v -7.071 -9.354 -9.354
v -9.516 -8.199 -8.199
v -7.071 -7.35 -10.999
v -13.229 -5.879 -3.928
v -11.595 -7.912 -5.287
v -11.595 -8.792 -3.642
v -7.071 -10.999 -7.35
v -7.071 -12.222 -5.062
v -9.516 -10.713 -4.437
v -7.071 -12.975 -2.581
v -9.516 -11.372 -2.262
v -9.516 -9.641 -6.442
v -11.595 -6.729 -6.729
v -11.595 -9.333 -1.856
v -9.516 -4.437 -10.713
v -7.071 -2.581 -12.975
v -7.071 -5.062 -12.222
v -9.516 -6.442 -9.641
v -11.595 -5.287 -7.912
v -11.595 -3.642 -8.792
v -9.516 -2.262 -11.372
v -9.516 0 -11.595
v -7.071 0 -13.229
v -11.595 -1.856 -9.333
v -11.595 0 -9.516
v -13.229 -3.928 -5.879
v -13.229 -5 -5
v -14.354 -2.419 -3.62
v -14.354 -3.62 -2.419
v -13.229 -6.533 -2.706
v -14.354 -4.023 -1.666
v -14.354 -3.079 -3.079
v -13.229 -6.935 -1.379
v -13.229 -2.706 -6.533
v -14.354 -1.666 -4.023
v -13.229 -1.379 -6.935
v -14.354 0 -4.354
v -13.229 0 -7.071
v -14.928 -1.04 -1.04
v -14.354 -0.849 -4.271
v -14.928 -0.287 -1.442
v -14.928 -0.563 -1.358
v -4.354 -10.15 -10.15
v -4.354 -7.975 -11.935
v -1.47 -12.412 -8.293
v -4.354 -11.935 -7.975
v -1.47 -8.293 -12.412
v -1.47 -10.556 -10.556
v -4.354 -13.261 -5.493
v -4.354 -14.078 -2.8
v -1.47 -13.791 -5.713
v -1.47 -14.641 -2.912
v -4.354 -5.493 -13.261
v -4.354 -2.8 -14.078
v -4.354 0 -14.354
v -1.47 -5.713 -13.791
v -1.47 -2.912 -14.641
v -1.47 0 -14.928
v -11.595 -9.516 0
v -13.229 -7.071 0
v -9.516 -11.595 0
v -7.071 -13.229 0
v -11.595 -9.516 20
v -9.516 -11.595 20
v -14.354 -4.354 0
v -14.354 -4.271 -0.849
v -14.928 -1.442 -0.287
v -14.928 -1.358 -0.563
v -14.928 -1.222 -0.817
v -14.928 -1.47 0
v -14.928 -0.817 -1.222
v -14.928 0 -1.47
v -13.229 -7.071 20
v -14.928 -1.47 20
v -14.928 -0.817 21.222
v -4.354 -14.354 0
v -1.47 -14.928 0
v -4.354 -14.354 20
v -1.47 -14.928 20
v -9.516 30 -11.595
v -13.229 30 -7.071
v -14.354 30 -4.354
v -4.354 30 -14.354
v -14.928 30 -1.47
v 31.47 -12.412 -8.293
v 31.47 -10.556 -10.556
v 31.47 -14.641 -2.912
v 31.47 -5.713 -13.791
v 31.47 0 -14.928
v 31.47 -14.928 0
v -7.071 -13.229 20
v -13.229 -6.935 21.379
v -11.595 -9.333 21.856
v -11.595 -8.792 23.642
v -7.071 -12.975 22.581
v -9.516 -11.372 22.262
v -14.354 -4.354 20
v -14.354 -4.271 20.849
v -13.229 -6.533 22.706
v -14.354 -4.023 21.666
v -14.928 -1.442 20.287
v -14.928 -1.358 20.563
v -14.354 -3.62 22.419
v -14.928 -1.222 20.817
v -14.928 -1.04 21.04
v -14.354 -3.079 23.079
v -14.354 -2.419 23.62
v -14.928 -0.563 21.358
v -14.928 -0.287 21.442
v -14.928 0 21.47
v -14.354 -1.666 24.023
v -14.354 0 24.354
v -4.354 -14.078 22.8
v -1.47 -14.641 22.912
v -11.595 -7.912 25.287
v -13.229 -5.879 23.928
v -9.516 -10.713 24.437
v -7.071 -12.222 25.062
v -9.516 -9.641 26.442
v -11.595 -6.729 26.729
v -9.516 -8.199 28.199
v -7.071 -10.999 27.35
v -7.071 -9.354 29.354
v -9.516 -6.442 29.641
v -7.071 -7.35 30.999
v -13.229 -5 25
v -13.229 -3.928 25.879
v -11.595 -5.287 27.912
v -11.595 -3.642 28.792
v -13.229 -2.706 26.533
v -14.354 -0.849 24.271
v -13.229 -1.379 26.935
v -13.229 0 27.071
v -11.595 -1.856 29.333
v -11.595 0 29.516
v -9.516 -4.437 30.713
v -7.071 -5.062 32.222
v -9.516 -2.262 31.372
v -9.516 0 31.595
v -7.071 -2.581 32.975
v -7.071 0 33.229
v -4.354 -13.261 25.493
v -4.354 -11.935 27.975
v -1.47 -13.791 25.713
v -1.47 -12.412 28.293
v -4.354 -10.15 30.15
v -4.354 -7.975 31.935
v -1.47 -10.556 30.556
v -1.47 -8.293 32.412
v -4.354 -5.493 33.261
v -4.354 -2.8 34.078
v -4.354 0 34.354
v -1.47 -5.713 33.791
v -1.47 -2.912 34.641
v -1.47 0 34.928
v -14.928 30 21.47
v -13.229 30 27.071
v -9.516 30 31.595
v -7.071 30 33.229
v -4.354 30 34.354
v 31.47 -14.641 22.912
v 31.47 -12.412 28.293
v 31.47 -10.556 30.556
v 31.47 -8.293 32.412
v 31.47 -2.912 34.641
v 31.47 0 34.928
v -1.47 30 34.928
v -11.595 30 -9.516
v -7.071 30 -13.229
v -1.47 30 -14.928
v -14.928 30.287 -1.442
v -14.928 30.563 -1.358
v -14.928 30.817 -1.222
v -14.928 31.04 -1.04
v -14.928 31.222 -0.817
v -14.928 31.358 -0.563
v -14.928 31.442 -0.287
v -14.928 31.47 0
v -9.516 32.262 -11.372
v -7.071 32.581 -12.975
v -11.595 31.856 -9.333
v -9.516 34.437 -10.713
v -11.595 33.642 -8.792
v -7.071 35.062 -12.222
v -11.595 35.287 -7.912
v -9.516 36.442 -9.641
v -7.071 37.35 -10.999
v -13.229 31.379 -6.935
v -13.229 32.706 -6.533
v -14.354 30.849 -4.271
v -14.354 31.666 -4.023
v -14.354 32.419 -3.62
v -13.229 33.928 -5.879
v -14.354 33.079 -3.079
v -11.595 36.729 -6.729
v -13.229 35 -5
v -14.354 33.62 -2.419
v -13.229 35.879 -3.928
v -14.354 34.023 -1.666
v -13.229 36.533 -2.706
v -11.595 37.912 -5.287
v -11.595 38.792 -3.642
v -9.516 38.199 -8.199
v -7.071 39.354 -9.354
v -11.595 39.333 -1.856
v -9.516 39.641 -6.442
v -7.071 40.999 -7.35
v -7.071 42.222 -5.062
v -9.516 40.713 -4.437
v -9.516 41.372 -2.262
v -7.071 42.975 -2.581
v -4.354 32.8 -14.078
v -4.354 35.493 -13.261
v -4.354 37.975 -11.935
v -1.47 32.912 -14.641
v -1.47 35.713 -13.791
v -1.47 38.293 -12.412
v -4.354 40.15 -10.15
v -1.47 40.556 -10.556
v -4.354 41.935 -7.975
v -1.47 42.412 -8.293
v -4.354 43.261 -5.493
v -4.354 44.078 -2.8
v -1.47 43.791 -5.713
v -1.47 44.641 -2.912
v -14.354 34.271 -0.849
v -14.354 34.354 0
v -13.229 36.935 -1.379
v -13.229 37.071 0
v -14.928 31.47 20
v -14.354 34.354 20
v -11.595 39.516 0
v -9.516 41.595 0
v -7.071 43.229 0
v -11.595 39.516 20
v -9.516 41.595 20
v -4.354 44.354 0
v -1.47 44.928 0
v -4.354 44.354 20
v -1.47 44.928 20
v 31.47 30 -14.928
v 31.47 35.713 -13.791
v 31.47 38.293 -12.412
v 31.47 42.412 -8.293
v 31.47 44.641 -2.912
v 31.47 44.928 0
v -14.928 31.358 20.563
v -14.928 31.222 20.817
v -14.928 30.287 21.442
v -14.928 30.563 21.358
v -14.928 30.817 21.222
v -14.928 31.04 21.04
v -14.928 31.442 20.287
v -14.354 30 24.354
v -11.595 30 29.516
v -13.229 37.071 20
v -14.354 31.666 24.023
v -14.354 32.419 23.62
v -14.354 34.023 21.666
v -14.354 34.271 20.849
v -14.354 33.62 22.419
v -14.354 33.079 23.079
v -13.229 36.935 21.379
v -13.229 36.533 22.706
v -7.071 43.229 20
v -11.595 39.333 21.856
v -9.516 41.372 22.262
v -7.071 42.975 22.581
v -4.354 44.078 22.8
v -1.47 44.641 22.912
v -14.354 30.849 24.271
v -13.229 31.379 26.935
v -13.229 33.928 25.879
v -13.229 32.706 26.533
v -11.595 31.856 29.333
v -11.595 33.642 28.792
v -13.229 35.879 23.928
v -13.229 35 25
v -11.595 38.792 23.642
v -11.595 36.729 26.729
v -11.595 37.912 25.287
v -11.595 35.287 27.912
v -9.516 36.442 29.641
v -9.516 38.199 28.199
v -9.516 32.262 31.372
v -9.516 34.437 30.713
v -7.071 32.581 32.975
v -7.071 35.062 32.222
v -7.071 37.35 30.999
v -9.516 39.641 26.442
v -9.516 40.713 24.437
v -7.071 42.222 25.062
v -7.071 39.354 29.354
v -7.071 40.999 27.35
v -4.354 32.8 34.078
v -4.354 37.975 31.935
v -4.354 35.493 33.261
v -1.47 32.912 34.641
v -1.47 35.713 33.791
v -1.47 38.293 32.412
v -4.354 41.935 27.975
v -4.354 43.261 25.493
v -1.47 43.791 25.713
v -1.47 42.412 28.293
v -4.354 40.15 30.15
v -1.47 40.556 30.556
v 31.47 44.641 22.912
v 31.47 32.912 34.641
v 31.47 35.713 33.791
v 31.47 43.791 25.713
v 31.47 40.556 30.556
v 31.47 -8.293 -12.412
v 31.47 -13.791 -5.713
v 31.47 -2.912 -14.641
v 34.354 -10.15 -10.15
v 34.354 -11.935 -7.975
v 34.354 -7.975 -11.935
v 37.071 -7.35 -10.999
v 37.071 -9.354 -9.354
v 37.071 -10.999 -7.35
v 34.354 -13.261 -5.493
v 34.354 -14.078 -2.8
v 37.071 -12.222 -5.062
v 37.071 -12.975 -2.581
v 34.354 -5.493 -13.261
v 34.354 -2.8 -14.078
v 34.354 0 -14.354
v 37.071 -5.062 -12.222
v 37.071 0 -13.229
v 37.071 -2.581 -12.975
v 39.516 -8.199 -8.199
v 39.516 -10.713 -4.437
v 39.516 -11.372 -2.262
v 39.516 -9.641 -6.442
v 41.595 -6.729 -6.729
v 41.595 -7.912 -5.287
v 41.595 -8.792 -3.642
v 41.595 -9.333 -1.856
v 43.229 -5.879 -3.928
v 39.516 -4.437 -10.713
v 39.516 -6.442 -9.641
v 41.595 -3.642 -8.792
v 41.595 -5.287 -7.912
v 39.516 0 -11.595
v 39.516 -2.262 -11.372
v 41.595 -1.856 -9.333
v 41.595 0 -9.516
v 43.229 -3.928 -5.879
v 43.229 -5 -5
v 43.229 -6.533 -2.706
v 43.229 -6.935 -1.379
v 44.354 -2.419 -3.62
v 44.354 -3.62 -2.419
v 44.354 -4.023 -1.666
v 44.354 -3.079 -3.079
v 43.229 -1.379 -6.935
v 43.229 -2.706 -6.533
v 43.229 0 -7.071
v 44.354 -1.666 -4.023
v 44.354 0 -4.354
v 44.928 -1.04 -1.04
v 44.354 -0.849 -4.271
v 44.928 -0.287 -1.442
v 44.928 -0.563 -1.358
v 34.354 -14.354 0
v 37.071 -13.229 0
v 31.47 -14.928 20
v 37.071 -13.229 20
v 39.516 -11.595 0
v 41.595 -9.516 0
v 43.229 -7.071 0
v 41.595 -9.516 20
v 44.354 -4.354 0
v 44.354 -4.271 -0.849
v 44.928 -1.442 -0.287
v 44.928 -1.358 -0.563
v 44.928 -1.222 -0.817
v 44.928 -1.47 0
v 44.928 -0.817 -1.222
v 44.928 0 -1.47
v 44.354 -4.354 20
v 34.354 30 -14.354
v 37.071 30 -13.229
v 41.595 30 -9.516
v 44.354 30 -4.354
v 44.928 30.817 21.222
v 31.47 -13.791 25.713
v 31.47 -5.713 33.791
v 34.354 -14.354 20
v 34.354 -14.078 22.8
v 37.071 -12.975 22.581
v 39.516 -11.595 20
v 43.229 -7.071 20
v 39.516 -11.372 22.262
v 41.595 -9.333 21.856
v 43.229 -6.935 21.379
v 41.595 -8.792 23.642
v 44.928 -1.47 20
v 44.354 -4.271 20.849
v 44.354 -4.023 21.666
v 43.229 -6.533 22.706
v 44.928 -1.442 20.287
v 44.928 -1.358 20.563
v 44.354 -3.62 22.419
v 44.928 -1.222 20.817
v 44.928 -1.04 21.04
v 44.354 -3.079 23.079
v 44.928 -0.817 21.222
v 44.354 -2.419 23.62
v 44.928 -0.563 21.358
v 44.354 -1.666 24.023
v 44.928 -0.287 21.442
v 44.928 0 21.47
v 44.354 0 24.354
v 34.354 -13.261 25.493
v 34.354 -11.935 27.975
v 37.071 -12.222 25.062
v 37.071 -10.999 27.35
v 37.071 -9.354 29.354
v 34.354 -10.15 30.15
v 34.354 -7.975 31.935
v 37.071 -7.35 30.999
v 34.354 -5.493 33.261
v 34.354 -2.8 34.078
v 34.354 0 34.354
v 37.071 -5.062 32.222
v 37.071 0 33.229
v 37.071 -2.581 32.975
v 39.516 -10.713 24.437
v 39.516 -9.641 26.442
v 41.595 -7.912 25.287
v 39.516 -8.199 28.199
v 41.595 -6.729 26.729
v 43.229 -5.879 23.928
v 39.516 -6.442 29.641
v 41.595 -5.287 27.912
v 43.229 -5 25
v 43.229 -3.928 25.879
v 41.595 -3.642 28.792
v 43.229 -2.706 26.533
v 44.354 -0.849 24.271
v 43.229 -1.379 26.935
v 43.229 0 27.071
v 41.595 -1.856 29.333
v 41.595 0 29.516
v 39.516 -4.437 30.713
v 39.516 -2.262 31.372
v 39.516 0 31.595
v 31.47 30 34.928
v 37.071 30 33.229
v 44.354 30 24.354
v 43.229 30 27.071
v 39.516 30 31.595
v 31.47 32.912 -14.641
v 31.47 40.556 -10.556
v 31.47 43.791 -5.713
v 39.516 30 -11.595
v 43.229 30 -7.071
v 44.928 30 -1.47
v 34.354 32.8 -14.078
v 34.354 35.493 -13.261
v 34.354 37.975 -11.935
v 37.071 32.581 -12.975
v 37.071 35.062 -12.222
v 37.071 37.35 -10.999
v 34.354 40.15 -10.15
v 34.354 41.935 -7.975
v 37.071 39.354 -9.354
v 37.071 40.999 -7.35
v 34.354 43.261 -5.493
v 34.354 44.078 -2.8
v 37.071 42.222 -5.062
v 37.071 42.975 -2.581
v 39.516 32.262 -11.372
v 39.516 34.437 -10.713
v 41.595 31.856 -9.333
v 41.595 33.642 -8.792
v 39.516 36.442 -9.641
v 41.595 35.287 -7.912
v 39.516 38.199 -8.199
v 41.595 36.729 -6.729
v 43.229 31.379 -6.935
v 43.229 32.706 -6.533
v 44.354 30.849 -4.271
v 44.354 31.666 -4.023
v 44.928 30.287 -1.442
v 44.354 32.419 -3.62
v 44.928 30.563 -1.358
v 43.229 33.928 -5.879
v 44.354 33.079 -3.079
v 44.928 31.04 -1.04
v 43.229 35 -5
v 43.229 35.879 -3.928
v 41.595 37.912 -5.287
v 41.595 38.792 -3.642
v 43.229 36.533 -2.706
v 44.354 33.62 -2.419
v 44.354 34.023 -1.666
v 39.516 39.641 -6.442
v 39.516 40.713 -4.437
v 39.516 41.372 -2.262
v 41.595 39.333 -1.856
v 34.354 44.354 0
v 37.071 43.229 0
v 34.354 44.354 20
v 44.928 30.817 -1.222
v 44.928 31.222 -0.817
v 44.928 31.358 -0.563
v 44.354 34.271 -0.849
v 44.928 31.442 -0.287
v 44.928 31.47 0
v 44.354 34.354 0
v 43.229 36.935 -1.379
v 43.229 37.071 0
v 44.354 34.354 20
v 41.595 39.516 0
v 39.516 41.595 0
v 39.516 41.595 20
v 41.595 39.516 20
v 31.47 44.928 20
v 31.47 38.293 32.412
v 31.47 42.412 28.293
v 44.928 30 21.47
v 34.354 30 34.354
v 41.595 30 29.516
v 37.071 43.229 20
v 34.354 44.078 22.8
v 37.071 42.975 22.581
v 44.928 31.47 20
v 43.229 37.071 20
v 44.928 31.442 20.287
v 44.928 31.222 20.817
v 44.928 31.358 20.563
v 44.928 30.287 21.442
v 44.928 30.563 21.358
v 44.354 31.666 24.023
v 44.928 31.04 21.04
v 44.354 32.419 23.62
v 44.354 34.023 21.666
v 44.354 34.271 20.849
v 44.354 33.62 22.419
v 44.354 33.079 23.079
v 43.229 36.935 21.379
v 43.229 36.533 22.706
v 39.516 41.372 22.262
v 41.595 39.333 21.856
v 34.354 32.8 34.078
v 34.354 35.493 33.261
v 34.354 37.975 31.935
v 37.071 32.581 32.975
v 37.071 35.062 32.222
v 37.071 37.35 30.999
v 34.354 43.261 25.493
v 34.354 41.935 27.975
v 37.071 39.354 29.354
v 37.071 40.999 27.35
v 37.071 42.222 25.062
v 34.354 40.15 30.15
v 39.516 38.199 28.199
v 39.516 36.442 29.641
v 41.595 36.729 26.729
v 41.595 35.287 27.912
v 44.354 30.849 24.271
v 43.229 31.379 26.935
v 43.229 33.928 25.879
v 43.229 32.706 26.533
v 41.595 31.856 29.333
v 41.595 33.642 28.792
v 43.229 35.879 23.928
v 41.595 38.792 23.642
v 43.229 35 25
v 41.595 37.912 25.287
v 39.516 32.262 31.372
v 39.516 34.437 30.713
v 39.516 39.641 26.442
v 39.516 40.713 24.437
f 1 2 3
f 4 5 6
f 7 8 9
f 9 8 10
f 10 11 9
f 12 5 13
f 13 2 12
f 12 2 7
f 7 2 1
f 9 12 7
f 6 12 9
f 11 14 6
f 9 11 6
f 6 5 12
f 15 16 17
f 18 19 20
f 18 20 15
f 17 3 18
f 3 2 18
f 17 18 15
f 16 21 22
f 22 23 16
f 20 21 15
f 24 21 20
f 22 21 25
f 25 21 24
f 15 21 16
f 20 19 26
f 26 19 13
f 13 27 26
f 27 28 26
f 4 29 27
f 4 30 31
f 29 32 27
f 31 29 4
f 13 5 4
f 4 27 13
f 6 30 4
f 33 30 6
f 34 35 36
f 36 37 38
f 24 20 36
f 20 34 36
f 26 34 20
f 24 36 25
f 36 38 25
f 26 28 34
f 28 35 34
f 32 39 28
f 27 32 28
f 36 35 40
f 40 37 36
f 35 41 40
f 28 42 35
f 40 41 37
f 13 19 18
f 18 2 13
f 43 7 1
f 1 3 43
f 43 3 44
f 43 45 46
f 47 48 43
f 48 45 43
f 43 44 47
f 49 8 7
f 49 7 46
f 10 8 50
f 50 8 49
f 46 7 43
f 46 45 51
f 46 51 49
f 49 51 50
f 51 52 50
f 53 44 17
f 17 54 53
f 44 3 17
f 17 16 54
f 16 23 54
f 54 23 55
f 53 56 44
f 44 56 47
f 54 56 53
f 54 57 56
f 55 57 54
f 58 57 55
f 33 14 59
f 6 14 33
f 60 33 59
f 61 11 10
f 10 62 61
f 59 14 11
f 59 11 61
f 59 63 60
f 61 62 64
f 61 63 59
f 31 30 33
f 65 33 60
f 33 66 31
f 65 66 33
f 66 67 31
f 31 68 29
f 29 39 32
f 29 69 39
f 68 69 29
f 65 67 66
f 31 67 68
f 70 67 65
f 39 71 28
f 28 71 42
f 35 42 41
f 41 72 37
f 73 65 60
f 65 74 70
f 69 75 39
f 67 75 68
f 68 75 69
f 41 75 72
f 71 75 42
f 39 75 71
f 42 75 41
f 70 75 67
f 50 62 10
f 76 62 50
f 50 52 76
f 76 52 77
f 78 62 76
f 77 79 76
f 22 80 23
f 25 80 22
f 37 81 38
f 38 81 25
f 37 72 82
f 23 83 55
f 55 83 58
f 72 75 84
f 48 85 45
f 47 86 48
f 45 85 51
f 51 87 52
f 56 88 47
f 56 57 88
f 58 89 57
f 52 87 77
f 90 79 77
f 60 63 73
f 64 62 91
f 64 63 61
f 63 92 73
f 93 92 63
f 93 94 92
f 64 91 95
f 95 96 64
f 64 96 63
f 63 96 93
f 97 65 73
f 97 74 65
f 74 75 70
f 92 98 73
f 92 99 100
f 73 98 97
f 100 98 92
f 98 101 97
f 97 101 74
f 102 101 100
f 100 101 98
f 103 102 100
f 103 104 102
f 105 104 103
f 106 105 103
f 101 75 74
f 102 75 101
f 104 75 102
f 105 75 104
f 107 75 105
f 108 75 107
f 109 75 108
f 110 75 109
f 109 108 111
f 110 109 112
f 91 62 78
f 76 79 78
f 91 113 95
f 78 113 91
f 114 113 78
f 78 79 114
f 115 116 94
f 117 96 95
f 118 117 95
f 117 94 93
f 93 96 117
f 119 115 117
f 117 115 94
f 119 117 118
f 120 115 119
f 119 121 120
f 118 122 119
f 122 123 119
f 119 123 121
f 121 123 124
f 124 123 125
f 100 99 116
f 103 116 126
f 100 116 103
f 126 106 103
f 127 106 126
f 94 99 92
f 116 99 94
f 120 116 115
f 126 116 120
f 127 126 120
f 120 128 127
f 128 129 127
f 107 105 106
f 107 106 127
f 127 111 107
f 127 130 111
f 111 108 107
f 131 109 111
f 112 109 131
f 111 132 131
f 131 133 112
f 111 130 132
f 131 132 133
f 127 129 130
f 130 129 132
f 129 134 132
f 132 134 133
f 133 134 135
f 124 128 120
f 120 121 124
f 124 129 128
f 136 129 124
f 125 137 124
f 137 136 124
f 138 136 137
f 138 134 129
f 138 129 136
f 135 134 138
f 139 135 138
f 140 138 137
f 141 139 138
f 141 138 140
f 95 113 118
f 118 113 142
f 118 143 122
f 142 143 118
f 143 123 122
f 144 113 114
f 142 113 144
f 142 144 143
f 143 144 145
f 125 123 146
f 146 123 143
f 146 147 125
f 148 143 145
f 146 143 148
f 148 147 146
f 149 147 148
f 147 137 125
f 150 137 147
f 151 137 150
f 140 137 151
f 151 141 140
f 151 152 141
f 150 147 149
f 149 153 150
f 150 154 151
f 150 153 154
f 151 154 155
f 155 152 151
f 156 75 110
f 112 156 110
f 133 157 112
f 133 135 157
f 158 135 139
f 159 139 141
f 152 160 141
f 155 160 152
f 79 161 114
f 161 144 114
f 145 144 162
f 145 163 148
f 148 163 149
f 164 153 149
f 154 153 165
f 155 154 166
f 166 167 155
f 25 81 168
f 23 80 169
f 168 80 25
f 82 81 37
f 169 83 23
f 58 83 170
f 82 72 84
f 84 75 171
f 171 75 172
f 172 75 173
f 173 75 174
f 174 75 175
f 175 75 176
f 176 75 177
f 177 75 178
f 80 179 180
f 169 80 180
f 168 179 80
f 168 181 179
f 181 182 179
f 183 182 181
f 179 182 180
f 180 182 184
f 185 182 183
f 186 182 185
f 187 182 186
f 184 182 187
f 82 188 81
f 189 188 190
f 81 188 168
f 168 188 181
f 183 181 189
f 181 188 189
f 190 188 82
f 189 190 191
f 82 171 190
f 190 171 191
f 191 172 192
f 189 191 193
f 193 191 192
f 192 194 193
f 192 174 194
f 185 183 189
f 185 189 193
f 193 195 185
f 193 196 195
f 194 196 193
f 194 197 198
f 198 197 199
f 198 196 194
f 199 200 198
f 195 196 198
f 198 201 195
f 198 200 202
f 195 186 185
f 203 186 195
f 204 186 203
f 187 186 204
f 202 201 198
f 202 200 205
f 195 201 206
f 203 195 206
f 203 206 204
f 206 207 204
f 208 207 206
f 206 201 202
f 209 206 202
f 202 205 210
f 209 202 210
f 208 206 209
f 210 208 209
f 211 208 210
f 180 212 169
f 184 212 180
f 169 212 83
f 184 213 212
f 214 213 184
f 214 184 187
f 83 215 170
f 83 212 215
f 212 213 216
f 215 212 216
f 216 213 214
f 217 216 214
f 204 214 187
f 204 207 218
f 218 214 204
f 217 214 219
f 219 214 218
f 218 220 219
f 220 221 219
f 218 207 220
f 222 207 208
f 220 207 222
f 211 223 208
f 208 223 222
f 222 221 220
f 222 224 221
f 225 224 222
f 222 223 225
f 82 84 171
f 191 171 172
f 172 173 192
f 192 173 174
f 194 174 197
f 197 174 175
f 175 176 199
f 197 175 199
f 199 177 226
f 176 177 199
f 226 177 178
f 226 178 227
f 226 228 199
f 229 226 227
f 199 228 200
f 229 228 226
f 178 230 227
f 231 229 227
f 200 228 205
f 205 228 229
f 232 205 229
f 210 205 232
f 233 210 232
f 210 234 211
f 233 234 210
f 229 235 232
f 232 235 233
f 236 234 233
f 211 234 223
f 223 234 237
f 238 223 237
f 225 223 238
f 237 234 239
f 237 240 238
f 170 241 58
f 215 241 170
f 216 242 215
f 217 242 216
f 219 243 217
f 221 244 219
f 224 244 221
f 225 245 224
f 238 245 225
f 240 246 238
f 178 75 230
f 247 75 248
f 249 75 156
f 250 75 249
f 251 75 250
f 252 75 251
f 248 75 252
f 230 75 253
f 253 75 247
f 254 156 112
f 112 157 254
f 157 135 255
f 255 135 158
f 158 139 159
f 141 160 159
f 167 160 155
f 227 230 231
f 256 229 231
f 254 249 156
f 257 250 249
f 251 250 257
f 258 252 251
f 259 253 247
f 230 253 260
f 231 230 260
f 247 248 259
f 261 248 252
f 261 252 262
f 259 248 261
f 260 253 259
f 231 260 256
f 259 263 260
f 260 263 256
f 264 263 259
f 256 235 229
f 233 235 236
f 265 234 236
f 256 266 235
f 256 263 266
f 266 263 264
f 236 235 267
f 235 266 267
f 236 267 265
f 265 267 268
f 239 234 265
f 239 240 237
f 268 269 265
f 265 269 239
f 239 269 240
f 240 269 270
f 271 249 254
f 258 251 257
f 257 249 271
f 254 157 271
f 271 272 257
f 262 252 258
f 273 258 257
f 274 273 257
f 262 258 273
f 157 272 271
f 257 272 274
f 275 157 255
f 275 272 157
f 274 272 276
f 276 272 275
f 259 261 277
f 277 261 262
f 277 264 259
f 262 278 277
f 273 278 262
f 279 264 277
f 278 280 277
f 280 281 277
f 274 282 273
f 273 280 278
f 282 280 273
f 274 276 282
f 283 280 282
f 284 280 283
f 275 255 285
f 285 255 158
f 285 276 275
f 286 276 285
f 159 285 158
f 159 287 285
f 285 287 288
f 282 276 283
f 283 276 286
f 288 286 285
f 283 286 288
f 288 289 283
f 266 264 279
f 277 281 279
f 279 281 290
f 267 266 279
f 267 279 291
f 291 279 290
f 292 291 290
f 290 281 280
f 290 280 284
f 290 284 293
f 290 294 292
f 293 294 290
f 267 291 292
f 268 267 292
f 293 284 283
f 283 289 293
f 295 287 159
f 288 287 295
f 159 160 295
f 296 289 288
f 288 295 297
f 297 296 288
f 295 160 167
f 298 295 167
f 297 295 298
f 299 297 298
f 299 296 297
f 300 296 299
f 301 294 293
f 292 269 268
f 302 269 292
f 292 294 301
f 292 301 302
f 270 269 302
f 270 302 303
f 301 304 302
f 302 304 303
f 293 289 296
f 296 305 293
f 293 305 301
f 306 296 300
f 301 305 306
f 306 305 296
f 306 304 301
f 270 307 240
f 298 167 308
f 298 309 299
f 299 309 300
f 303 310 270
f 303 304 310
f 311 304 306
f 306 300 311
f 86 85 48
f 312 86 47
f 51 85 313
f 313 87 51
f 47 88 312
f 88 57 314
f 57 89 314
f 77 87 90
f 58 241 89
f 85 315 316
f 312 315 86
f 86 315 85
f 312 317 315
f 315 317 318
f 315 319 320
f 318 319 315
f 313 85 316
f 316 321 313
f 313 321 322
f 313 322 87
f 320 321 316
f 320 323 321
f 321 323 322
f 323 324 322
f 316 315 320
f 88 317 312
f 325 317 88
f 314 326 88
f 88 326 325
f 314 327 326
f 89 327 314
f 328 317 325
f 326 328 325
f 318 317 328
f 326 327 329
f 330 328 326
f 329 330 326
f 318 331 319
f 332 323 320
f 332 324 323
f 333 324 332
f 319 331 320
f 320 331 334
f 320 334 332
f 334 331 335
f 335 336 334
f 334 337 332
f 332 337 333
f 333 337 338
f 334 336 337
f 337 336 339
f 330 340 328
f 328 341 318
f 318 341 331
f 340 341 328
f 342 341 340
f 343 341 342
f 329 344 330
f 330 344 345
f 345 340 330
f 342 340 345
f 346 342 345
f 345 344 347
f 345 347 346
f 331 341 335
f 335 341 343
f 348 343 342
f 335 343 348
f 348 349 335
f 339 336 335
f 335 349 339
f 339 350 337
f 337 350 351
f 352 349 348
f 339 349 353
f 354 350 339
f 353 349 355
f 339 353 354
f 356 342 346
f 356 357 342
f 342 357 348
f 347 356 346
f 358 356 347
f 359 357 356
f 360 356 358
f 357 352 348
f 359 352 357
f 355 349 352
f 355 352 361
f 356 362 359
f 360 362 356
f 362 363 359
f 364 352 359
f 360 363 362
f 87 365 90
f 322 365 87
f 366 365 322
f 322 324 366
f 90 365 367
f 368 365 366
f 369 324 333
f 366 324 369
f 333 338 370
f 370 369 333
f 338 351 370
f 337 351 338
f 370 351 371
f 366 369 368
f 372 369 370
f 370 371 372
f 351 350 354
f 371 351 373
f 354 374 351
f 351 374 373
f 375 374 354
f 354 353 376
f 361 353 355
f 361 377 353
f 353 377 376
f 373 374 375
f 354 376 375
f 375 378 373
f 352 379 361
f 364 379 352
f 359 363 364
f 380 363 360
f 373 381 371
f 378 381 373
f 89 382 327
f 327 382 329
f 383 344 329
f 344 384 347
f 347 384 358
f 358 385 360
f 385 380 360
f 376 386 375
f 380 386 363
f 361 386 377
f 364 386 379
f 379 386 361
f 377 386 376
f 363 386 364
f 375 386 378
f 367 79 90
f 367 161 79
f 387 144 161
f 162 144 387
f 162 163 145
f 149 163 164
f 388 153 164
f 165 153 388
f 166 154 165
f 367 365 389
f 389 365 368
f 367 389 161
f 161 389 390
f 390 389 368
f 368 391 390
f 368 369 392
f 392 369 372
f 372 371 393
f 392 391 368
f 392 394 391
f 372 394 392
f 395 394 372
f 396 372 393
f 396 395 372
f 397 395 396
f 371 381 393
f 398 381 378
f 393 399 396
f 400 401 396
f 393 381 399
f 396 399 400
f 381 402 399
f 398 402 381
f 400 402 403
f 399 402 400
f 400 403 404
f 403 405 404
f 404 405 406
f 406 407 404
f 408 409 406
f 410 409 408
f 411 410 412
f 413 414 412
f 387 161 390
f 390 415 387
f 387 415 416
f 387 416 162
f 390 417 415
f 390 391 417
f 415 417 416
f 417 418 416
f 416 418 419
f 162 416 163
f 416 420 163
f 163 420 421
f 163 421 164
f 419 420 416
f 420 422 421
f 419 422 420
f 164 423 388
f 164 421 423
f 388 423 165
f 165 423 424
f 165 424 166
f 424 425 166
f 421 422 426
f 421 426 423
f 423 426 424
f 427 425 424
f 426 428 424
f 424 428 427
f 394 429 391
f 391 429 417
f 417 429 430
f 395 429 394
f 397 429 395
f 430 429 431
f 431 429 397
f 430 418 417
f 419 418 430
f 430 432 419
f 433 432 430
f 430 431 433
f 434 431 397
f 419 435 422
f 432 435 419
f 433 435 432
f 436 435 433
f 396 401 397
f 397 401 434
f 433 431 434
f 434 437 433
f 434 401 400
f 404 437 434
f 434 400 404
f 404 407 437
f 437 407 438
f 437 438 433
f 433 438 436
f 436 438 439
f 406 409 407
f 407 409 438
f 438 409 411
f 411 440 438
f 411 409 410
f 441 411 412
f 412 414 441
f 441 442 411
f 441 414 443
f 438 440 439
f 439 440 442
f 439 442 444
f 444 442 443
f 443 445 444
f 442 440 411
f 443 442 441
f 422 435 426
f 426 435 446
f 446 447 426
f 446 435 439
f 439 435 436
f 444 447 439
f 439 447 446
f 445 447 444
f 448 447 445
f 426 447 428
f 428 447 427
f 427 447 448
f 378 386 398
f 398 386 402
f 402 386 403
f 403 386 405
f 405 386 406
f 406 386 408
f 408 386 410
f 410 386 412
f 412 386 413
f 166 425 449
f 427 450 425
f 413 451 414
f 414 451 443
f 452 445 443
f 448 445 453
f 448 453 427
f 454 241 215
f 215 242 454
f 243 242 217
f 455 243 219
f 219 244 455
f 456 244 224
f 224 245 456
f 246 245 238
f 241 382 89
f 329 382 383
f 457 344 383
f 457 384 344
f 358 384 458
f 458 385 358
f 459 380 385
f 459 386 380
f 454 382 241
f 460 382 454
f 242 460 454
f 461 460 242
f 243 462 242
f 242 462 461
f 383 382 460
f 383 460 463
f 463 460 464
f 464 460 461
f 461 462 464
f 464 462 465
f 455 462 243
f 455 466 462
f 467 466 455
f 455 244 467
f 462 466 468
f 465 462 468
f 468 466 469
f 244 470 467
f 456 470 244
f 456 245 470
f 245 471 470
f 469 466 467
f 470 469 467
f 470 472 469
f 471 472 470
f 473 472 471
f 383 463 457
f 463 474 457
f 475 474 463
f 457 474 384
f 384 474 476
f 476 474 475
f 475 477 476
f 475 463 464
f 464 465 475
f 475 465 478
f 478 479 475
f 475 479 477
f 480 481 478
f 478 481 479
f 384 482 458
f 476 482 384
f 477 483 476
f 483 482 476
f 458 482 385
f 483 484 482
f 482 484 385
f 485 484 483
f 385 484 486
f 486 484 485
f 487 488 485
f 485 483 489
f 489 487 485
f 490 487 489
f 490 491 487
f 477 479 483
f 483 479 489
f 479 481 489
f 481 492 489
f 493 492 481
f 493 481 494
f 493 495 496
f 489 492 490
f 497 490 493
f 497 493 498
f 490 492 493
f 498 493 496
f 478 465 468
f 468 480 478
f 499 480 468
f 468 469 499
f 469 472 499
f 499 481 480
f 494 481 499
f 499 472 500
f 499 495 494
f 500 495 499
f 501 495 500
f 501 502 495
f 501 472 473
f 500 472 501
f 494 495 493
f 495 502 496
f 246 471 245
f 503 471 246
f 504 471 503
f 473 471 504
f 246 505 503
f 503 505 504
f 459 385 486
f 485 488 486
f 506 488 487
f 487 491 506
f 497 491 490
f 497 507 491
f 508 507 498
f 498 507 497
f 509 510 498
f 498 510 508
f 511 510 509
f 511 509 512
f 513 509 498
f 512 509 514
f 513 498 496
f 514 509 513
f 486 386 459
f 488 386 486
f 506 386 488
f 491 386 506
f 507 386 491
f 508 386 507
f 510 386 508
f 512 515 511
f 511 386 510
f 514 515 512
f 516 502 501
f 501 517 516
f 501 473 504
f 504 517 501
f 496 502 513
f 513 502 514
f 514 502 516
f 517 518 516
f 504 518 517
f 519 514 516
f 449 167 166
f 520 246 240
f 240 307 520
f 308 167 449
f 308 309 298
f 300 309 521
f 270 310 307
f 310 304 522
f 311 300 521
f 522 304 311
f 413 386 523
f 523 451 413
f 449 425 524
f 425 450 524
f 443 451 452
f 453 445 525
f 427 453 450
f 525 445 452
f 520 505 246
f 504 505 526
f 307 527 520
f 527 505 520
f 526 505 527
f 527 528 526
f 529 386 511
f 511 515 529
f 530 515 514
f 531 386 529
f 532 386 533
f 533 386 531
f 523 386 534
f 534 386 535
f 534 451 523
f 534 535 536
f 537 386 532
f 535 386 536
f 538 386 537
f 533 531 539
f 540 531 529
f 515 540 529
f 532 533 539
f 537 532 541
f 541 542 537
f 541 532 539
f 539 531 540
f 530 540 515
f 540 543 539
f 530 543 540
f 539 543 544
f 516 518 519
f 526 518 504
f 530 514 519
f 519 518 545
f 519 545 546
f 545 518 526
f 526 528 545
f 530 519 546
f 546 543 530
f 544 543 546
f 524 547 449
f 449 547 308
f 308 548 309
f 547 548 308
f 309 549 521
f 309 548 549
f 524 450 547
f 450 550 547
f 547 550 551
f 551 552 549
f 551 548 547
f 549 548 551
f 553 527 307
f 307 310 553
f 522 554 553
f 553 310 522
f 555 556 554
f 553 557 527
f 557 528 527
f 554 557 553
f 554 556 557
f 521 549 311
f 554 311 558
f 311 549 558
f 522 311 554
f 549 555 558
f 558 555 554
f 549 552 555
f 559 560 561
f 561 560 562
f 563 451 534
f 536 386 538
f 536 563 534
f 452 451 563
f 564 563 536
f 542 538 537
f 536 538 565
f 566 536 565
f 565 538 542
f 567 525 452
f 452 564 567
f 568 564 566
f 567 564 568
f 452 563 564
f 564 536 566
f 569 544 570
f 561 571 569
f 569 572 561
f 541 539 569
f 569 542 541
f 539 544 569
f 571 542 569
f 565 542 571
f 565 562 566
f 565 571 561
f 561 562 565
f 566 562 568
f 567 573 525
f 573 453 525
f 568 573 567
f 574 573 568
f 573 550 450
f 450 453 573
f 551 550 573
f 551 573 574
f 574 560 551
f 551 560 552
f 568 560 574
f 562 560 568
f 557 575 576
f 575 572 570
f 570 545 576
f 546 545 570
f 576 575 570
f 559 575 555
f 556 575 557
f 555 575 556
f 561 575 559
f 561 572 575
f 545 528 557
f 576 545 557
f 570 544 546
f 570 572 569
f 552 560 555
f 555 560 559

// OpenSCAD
// Start: lazy_union
default_5_default_5();
// End: lazy_union

// Modules.

// 'PartMaterial undef-default - default 5.0'
module default_5_default_5() {
  // 'None : _combine_solids_and_holes'
  union() {
    // 'minkowski : _combine_solids_and_holes'
    union() {
      // 'overall : _combine_solids_and_holes'
      minkowski() {
        // 'box'
        multmatrix(m=[[1.0, 0.0, 0.0, -15.0], [0.0, 1.0, 0.0, -15.0], [0.0, 0.0, 1.0, -10.0], [0.0, 0.0, 0.0, 1.0]]) {
          // 'box'
          color(c=[0.9, 0.1, 0.1, 1.0]) {
            // 'box : _combine_solids_and_holes'
            union() {
              // 'box'
              cube(size=[30.0, 30.0, 20.0]);
            }
          }
        }
        // 'sphere'
        multmatrix(m=[[0.0, 0.0, -1.0, 15.0], [-1.0, 0.0, 0.0, 15.0], [0.0, 1.0, 0.0, 10.0], [0.0, 0.0, 0.0, 1.0]]) {
          // 'sphere'
          color(c=[0.1, 0.1, 0.8, 1.0]) {
            // 'sphere : _combine_solids_and_holes'
            union() {
              // 'sphere'
              sphere(r=15.0, $fn=32);
            }
          }
        }
      }
    }
  }
} // end module default_5_default_5
